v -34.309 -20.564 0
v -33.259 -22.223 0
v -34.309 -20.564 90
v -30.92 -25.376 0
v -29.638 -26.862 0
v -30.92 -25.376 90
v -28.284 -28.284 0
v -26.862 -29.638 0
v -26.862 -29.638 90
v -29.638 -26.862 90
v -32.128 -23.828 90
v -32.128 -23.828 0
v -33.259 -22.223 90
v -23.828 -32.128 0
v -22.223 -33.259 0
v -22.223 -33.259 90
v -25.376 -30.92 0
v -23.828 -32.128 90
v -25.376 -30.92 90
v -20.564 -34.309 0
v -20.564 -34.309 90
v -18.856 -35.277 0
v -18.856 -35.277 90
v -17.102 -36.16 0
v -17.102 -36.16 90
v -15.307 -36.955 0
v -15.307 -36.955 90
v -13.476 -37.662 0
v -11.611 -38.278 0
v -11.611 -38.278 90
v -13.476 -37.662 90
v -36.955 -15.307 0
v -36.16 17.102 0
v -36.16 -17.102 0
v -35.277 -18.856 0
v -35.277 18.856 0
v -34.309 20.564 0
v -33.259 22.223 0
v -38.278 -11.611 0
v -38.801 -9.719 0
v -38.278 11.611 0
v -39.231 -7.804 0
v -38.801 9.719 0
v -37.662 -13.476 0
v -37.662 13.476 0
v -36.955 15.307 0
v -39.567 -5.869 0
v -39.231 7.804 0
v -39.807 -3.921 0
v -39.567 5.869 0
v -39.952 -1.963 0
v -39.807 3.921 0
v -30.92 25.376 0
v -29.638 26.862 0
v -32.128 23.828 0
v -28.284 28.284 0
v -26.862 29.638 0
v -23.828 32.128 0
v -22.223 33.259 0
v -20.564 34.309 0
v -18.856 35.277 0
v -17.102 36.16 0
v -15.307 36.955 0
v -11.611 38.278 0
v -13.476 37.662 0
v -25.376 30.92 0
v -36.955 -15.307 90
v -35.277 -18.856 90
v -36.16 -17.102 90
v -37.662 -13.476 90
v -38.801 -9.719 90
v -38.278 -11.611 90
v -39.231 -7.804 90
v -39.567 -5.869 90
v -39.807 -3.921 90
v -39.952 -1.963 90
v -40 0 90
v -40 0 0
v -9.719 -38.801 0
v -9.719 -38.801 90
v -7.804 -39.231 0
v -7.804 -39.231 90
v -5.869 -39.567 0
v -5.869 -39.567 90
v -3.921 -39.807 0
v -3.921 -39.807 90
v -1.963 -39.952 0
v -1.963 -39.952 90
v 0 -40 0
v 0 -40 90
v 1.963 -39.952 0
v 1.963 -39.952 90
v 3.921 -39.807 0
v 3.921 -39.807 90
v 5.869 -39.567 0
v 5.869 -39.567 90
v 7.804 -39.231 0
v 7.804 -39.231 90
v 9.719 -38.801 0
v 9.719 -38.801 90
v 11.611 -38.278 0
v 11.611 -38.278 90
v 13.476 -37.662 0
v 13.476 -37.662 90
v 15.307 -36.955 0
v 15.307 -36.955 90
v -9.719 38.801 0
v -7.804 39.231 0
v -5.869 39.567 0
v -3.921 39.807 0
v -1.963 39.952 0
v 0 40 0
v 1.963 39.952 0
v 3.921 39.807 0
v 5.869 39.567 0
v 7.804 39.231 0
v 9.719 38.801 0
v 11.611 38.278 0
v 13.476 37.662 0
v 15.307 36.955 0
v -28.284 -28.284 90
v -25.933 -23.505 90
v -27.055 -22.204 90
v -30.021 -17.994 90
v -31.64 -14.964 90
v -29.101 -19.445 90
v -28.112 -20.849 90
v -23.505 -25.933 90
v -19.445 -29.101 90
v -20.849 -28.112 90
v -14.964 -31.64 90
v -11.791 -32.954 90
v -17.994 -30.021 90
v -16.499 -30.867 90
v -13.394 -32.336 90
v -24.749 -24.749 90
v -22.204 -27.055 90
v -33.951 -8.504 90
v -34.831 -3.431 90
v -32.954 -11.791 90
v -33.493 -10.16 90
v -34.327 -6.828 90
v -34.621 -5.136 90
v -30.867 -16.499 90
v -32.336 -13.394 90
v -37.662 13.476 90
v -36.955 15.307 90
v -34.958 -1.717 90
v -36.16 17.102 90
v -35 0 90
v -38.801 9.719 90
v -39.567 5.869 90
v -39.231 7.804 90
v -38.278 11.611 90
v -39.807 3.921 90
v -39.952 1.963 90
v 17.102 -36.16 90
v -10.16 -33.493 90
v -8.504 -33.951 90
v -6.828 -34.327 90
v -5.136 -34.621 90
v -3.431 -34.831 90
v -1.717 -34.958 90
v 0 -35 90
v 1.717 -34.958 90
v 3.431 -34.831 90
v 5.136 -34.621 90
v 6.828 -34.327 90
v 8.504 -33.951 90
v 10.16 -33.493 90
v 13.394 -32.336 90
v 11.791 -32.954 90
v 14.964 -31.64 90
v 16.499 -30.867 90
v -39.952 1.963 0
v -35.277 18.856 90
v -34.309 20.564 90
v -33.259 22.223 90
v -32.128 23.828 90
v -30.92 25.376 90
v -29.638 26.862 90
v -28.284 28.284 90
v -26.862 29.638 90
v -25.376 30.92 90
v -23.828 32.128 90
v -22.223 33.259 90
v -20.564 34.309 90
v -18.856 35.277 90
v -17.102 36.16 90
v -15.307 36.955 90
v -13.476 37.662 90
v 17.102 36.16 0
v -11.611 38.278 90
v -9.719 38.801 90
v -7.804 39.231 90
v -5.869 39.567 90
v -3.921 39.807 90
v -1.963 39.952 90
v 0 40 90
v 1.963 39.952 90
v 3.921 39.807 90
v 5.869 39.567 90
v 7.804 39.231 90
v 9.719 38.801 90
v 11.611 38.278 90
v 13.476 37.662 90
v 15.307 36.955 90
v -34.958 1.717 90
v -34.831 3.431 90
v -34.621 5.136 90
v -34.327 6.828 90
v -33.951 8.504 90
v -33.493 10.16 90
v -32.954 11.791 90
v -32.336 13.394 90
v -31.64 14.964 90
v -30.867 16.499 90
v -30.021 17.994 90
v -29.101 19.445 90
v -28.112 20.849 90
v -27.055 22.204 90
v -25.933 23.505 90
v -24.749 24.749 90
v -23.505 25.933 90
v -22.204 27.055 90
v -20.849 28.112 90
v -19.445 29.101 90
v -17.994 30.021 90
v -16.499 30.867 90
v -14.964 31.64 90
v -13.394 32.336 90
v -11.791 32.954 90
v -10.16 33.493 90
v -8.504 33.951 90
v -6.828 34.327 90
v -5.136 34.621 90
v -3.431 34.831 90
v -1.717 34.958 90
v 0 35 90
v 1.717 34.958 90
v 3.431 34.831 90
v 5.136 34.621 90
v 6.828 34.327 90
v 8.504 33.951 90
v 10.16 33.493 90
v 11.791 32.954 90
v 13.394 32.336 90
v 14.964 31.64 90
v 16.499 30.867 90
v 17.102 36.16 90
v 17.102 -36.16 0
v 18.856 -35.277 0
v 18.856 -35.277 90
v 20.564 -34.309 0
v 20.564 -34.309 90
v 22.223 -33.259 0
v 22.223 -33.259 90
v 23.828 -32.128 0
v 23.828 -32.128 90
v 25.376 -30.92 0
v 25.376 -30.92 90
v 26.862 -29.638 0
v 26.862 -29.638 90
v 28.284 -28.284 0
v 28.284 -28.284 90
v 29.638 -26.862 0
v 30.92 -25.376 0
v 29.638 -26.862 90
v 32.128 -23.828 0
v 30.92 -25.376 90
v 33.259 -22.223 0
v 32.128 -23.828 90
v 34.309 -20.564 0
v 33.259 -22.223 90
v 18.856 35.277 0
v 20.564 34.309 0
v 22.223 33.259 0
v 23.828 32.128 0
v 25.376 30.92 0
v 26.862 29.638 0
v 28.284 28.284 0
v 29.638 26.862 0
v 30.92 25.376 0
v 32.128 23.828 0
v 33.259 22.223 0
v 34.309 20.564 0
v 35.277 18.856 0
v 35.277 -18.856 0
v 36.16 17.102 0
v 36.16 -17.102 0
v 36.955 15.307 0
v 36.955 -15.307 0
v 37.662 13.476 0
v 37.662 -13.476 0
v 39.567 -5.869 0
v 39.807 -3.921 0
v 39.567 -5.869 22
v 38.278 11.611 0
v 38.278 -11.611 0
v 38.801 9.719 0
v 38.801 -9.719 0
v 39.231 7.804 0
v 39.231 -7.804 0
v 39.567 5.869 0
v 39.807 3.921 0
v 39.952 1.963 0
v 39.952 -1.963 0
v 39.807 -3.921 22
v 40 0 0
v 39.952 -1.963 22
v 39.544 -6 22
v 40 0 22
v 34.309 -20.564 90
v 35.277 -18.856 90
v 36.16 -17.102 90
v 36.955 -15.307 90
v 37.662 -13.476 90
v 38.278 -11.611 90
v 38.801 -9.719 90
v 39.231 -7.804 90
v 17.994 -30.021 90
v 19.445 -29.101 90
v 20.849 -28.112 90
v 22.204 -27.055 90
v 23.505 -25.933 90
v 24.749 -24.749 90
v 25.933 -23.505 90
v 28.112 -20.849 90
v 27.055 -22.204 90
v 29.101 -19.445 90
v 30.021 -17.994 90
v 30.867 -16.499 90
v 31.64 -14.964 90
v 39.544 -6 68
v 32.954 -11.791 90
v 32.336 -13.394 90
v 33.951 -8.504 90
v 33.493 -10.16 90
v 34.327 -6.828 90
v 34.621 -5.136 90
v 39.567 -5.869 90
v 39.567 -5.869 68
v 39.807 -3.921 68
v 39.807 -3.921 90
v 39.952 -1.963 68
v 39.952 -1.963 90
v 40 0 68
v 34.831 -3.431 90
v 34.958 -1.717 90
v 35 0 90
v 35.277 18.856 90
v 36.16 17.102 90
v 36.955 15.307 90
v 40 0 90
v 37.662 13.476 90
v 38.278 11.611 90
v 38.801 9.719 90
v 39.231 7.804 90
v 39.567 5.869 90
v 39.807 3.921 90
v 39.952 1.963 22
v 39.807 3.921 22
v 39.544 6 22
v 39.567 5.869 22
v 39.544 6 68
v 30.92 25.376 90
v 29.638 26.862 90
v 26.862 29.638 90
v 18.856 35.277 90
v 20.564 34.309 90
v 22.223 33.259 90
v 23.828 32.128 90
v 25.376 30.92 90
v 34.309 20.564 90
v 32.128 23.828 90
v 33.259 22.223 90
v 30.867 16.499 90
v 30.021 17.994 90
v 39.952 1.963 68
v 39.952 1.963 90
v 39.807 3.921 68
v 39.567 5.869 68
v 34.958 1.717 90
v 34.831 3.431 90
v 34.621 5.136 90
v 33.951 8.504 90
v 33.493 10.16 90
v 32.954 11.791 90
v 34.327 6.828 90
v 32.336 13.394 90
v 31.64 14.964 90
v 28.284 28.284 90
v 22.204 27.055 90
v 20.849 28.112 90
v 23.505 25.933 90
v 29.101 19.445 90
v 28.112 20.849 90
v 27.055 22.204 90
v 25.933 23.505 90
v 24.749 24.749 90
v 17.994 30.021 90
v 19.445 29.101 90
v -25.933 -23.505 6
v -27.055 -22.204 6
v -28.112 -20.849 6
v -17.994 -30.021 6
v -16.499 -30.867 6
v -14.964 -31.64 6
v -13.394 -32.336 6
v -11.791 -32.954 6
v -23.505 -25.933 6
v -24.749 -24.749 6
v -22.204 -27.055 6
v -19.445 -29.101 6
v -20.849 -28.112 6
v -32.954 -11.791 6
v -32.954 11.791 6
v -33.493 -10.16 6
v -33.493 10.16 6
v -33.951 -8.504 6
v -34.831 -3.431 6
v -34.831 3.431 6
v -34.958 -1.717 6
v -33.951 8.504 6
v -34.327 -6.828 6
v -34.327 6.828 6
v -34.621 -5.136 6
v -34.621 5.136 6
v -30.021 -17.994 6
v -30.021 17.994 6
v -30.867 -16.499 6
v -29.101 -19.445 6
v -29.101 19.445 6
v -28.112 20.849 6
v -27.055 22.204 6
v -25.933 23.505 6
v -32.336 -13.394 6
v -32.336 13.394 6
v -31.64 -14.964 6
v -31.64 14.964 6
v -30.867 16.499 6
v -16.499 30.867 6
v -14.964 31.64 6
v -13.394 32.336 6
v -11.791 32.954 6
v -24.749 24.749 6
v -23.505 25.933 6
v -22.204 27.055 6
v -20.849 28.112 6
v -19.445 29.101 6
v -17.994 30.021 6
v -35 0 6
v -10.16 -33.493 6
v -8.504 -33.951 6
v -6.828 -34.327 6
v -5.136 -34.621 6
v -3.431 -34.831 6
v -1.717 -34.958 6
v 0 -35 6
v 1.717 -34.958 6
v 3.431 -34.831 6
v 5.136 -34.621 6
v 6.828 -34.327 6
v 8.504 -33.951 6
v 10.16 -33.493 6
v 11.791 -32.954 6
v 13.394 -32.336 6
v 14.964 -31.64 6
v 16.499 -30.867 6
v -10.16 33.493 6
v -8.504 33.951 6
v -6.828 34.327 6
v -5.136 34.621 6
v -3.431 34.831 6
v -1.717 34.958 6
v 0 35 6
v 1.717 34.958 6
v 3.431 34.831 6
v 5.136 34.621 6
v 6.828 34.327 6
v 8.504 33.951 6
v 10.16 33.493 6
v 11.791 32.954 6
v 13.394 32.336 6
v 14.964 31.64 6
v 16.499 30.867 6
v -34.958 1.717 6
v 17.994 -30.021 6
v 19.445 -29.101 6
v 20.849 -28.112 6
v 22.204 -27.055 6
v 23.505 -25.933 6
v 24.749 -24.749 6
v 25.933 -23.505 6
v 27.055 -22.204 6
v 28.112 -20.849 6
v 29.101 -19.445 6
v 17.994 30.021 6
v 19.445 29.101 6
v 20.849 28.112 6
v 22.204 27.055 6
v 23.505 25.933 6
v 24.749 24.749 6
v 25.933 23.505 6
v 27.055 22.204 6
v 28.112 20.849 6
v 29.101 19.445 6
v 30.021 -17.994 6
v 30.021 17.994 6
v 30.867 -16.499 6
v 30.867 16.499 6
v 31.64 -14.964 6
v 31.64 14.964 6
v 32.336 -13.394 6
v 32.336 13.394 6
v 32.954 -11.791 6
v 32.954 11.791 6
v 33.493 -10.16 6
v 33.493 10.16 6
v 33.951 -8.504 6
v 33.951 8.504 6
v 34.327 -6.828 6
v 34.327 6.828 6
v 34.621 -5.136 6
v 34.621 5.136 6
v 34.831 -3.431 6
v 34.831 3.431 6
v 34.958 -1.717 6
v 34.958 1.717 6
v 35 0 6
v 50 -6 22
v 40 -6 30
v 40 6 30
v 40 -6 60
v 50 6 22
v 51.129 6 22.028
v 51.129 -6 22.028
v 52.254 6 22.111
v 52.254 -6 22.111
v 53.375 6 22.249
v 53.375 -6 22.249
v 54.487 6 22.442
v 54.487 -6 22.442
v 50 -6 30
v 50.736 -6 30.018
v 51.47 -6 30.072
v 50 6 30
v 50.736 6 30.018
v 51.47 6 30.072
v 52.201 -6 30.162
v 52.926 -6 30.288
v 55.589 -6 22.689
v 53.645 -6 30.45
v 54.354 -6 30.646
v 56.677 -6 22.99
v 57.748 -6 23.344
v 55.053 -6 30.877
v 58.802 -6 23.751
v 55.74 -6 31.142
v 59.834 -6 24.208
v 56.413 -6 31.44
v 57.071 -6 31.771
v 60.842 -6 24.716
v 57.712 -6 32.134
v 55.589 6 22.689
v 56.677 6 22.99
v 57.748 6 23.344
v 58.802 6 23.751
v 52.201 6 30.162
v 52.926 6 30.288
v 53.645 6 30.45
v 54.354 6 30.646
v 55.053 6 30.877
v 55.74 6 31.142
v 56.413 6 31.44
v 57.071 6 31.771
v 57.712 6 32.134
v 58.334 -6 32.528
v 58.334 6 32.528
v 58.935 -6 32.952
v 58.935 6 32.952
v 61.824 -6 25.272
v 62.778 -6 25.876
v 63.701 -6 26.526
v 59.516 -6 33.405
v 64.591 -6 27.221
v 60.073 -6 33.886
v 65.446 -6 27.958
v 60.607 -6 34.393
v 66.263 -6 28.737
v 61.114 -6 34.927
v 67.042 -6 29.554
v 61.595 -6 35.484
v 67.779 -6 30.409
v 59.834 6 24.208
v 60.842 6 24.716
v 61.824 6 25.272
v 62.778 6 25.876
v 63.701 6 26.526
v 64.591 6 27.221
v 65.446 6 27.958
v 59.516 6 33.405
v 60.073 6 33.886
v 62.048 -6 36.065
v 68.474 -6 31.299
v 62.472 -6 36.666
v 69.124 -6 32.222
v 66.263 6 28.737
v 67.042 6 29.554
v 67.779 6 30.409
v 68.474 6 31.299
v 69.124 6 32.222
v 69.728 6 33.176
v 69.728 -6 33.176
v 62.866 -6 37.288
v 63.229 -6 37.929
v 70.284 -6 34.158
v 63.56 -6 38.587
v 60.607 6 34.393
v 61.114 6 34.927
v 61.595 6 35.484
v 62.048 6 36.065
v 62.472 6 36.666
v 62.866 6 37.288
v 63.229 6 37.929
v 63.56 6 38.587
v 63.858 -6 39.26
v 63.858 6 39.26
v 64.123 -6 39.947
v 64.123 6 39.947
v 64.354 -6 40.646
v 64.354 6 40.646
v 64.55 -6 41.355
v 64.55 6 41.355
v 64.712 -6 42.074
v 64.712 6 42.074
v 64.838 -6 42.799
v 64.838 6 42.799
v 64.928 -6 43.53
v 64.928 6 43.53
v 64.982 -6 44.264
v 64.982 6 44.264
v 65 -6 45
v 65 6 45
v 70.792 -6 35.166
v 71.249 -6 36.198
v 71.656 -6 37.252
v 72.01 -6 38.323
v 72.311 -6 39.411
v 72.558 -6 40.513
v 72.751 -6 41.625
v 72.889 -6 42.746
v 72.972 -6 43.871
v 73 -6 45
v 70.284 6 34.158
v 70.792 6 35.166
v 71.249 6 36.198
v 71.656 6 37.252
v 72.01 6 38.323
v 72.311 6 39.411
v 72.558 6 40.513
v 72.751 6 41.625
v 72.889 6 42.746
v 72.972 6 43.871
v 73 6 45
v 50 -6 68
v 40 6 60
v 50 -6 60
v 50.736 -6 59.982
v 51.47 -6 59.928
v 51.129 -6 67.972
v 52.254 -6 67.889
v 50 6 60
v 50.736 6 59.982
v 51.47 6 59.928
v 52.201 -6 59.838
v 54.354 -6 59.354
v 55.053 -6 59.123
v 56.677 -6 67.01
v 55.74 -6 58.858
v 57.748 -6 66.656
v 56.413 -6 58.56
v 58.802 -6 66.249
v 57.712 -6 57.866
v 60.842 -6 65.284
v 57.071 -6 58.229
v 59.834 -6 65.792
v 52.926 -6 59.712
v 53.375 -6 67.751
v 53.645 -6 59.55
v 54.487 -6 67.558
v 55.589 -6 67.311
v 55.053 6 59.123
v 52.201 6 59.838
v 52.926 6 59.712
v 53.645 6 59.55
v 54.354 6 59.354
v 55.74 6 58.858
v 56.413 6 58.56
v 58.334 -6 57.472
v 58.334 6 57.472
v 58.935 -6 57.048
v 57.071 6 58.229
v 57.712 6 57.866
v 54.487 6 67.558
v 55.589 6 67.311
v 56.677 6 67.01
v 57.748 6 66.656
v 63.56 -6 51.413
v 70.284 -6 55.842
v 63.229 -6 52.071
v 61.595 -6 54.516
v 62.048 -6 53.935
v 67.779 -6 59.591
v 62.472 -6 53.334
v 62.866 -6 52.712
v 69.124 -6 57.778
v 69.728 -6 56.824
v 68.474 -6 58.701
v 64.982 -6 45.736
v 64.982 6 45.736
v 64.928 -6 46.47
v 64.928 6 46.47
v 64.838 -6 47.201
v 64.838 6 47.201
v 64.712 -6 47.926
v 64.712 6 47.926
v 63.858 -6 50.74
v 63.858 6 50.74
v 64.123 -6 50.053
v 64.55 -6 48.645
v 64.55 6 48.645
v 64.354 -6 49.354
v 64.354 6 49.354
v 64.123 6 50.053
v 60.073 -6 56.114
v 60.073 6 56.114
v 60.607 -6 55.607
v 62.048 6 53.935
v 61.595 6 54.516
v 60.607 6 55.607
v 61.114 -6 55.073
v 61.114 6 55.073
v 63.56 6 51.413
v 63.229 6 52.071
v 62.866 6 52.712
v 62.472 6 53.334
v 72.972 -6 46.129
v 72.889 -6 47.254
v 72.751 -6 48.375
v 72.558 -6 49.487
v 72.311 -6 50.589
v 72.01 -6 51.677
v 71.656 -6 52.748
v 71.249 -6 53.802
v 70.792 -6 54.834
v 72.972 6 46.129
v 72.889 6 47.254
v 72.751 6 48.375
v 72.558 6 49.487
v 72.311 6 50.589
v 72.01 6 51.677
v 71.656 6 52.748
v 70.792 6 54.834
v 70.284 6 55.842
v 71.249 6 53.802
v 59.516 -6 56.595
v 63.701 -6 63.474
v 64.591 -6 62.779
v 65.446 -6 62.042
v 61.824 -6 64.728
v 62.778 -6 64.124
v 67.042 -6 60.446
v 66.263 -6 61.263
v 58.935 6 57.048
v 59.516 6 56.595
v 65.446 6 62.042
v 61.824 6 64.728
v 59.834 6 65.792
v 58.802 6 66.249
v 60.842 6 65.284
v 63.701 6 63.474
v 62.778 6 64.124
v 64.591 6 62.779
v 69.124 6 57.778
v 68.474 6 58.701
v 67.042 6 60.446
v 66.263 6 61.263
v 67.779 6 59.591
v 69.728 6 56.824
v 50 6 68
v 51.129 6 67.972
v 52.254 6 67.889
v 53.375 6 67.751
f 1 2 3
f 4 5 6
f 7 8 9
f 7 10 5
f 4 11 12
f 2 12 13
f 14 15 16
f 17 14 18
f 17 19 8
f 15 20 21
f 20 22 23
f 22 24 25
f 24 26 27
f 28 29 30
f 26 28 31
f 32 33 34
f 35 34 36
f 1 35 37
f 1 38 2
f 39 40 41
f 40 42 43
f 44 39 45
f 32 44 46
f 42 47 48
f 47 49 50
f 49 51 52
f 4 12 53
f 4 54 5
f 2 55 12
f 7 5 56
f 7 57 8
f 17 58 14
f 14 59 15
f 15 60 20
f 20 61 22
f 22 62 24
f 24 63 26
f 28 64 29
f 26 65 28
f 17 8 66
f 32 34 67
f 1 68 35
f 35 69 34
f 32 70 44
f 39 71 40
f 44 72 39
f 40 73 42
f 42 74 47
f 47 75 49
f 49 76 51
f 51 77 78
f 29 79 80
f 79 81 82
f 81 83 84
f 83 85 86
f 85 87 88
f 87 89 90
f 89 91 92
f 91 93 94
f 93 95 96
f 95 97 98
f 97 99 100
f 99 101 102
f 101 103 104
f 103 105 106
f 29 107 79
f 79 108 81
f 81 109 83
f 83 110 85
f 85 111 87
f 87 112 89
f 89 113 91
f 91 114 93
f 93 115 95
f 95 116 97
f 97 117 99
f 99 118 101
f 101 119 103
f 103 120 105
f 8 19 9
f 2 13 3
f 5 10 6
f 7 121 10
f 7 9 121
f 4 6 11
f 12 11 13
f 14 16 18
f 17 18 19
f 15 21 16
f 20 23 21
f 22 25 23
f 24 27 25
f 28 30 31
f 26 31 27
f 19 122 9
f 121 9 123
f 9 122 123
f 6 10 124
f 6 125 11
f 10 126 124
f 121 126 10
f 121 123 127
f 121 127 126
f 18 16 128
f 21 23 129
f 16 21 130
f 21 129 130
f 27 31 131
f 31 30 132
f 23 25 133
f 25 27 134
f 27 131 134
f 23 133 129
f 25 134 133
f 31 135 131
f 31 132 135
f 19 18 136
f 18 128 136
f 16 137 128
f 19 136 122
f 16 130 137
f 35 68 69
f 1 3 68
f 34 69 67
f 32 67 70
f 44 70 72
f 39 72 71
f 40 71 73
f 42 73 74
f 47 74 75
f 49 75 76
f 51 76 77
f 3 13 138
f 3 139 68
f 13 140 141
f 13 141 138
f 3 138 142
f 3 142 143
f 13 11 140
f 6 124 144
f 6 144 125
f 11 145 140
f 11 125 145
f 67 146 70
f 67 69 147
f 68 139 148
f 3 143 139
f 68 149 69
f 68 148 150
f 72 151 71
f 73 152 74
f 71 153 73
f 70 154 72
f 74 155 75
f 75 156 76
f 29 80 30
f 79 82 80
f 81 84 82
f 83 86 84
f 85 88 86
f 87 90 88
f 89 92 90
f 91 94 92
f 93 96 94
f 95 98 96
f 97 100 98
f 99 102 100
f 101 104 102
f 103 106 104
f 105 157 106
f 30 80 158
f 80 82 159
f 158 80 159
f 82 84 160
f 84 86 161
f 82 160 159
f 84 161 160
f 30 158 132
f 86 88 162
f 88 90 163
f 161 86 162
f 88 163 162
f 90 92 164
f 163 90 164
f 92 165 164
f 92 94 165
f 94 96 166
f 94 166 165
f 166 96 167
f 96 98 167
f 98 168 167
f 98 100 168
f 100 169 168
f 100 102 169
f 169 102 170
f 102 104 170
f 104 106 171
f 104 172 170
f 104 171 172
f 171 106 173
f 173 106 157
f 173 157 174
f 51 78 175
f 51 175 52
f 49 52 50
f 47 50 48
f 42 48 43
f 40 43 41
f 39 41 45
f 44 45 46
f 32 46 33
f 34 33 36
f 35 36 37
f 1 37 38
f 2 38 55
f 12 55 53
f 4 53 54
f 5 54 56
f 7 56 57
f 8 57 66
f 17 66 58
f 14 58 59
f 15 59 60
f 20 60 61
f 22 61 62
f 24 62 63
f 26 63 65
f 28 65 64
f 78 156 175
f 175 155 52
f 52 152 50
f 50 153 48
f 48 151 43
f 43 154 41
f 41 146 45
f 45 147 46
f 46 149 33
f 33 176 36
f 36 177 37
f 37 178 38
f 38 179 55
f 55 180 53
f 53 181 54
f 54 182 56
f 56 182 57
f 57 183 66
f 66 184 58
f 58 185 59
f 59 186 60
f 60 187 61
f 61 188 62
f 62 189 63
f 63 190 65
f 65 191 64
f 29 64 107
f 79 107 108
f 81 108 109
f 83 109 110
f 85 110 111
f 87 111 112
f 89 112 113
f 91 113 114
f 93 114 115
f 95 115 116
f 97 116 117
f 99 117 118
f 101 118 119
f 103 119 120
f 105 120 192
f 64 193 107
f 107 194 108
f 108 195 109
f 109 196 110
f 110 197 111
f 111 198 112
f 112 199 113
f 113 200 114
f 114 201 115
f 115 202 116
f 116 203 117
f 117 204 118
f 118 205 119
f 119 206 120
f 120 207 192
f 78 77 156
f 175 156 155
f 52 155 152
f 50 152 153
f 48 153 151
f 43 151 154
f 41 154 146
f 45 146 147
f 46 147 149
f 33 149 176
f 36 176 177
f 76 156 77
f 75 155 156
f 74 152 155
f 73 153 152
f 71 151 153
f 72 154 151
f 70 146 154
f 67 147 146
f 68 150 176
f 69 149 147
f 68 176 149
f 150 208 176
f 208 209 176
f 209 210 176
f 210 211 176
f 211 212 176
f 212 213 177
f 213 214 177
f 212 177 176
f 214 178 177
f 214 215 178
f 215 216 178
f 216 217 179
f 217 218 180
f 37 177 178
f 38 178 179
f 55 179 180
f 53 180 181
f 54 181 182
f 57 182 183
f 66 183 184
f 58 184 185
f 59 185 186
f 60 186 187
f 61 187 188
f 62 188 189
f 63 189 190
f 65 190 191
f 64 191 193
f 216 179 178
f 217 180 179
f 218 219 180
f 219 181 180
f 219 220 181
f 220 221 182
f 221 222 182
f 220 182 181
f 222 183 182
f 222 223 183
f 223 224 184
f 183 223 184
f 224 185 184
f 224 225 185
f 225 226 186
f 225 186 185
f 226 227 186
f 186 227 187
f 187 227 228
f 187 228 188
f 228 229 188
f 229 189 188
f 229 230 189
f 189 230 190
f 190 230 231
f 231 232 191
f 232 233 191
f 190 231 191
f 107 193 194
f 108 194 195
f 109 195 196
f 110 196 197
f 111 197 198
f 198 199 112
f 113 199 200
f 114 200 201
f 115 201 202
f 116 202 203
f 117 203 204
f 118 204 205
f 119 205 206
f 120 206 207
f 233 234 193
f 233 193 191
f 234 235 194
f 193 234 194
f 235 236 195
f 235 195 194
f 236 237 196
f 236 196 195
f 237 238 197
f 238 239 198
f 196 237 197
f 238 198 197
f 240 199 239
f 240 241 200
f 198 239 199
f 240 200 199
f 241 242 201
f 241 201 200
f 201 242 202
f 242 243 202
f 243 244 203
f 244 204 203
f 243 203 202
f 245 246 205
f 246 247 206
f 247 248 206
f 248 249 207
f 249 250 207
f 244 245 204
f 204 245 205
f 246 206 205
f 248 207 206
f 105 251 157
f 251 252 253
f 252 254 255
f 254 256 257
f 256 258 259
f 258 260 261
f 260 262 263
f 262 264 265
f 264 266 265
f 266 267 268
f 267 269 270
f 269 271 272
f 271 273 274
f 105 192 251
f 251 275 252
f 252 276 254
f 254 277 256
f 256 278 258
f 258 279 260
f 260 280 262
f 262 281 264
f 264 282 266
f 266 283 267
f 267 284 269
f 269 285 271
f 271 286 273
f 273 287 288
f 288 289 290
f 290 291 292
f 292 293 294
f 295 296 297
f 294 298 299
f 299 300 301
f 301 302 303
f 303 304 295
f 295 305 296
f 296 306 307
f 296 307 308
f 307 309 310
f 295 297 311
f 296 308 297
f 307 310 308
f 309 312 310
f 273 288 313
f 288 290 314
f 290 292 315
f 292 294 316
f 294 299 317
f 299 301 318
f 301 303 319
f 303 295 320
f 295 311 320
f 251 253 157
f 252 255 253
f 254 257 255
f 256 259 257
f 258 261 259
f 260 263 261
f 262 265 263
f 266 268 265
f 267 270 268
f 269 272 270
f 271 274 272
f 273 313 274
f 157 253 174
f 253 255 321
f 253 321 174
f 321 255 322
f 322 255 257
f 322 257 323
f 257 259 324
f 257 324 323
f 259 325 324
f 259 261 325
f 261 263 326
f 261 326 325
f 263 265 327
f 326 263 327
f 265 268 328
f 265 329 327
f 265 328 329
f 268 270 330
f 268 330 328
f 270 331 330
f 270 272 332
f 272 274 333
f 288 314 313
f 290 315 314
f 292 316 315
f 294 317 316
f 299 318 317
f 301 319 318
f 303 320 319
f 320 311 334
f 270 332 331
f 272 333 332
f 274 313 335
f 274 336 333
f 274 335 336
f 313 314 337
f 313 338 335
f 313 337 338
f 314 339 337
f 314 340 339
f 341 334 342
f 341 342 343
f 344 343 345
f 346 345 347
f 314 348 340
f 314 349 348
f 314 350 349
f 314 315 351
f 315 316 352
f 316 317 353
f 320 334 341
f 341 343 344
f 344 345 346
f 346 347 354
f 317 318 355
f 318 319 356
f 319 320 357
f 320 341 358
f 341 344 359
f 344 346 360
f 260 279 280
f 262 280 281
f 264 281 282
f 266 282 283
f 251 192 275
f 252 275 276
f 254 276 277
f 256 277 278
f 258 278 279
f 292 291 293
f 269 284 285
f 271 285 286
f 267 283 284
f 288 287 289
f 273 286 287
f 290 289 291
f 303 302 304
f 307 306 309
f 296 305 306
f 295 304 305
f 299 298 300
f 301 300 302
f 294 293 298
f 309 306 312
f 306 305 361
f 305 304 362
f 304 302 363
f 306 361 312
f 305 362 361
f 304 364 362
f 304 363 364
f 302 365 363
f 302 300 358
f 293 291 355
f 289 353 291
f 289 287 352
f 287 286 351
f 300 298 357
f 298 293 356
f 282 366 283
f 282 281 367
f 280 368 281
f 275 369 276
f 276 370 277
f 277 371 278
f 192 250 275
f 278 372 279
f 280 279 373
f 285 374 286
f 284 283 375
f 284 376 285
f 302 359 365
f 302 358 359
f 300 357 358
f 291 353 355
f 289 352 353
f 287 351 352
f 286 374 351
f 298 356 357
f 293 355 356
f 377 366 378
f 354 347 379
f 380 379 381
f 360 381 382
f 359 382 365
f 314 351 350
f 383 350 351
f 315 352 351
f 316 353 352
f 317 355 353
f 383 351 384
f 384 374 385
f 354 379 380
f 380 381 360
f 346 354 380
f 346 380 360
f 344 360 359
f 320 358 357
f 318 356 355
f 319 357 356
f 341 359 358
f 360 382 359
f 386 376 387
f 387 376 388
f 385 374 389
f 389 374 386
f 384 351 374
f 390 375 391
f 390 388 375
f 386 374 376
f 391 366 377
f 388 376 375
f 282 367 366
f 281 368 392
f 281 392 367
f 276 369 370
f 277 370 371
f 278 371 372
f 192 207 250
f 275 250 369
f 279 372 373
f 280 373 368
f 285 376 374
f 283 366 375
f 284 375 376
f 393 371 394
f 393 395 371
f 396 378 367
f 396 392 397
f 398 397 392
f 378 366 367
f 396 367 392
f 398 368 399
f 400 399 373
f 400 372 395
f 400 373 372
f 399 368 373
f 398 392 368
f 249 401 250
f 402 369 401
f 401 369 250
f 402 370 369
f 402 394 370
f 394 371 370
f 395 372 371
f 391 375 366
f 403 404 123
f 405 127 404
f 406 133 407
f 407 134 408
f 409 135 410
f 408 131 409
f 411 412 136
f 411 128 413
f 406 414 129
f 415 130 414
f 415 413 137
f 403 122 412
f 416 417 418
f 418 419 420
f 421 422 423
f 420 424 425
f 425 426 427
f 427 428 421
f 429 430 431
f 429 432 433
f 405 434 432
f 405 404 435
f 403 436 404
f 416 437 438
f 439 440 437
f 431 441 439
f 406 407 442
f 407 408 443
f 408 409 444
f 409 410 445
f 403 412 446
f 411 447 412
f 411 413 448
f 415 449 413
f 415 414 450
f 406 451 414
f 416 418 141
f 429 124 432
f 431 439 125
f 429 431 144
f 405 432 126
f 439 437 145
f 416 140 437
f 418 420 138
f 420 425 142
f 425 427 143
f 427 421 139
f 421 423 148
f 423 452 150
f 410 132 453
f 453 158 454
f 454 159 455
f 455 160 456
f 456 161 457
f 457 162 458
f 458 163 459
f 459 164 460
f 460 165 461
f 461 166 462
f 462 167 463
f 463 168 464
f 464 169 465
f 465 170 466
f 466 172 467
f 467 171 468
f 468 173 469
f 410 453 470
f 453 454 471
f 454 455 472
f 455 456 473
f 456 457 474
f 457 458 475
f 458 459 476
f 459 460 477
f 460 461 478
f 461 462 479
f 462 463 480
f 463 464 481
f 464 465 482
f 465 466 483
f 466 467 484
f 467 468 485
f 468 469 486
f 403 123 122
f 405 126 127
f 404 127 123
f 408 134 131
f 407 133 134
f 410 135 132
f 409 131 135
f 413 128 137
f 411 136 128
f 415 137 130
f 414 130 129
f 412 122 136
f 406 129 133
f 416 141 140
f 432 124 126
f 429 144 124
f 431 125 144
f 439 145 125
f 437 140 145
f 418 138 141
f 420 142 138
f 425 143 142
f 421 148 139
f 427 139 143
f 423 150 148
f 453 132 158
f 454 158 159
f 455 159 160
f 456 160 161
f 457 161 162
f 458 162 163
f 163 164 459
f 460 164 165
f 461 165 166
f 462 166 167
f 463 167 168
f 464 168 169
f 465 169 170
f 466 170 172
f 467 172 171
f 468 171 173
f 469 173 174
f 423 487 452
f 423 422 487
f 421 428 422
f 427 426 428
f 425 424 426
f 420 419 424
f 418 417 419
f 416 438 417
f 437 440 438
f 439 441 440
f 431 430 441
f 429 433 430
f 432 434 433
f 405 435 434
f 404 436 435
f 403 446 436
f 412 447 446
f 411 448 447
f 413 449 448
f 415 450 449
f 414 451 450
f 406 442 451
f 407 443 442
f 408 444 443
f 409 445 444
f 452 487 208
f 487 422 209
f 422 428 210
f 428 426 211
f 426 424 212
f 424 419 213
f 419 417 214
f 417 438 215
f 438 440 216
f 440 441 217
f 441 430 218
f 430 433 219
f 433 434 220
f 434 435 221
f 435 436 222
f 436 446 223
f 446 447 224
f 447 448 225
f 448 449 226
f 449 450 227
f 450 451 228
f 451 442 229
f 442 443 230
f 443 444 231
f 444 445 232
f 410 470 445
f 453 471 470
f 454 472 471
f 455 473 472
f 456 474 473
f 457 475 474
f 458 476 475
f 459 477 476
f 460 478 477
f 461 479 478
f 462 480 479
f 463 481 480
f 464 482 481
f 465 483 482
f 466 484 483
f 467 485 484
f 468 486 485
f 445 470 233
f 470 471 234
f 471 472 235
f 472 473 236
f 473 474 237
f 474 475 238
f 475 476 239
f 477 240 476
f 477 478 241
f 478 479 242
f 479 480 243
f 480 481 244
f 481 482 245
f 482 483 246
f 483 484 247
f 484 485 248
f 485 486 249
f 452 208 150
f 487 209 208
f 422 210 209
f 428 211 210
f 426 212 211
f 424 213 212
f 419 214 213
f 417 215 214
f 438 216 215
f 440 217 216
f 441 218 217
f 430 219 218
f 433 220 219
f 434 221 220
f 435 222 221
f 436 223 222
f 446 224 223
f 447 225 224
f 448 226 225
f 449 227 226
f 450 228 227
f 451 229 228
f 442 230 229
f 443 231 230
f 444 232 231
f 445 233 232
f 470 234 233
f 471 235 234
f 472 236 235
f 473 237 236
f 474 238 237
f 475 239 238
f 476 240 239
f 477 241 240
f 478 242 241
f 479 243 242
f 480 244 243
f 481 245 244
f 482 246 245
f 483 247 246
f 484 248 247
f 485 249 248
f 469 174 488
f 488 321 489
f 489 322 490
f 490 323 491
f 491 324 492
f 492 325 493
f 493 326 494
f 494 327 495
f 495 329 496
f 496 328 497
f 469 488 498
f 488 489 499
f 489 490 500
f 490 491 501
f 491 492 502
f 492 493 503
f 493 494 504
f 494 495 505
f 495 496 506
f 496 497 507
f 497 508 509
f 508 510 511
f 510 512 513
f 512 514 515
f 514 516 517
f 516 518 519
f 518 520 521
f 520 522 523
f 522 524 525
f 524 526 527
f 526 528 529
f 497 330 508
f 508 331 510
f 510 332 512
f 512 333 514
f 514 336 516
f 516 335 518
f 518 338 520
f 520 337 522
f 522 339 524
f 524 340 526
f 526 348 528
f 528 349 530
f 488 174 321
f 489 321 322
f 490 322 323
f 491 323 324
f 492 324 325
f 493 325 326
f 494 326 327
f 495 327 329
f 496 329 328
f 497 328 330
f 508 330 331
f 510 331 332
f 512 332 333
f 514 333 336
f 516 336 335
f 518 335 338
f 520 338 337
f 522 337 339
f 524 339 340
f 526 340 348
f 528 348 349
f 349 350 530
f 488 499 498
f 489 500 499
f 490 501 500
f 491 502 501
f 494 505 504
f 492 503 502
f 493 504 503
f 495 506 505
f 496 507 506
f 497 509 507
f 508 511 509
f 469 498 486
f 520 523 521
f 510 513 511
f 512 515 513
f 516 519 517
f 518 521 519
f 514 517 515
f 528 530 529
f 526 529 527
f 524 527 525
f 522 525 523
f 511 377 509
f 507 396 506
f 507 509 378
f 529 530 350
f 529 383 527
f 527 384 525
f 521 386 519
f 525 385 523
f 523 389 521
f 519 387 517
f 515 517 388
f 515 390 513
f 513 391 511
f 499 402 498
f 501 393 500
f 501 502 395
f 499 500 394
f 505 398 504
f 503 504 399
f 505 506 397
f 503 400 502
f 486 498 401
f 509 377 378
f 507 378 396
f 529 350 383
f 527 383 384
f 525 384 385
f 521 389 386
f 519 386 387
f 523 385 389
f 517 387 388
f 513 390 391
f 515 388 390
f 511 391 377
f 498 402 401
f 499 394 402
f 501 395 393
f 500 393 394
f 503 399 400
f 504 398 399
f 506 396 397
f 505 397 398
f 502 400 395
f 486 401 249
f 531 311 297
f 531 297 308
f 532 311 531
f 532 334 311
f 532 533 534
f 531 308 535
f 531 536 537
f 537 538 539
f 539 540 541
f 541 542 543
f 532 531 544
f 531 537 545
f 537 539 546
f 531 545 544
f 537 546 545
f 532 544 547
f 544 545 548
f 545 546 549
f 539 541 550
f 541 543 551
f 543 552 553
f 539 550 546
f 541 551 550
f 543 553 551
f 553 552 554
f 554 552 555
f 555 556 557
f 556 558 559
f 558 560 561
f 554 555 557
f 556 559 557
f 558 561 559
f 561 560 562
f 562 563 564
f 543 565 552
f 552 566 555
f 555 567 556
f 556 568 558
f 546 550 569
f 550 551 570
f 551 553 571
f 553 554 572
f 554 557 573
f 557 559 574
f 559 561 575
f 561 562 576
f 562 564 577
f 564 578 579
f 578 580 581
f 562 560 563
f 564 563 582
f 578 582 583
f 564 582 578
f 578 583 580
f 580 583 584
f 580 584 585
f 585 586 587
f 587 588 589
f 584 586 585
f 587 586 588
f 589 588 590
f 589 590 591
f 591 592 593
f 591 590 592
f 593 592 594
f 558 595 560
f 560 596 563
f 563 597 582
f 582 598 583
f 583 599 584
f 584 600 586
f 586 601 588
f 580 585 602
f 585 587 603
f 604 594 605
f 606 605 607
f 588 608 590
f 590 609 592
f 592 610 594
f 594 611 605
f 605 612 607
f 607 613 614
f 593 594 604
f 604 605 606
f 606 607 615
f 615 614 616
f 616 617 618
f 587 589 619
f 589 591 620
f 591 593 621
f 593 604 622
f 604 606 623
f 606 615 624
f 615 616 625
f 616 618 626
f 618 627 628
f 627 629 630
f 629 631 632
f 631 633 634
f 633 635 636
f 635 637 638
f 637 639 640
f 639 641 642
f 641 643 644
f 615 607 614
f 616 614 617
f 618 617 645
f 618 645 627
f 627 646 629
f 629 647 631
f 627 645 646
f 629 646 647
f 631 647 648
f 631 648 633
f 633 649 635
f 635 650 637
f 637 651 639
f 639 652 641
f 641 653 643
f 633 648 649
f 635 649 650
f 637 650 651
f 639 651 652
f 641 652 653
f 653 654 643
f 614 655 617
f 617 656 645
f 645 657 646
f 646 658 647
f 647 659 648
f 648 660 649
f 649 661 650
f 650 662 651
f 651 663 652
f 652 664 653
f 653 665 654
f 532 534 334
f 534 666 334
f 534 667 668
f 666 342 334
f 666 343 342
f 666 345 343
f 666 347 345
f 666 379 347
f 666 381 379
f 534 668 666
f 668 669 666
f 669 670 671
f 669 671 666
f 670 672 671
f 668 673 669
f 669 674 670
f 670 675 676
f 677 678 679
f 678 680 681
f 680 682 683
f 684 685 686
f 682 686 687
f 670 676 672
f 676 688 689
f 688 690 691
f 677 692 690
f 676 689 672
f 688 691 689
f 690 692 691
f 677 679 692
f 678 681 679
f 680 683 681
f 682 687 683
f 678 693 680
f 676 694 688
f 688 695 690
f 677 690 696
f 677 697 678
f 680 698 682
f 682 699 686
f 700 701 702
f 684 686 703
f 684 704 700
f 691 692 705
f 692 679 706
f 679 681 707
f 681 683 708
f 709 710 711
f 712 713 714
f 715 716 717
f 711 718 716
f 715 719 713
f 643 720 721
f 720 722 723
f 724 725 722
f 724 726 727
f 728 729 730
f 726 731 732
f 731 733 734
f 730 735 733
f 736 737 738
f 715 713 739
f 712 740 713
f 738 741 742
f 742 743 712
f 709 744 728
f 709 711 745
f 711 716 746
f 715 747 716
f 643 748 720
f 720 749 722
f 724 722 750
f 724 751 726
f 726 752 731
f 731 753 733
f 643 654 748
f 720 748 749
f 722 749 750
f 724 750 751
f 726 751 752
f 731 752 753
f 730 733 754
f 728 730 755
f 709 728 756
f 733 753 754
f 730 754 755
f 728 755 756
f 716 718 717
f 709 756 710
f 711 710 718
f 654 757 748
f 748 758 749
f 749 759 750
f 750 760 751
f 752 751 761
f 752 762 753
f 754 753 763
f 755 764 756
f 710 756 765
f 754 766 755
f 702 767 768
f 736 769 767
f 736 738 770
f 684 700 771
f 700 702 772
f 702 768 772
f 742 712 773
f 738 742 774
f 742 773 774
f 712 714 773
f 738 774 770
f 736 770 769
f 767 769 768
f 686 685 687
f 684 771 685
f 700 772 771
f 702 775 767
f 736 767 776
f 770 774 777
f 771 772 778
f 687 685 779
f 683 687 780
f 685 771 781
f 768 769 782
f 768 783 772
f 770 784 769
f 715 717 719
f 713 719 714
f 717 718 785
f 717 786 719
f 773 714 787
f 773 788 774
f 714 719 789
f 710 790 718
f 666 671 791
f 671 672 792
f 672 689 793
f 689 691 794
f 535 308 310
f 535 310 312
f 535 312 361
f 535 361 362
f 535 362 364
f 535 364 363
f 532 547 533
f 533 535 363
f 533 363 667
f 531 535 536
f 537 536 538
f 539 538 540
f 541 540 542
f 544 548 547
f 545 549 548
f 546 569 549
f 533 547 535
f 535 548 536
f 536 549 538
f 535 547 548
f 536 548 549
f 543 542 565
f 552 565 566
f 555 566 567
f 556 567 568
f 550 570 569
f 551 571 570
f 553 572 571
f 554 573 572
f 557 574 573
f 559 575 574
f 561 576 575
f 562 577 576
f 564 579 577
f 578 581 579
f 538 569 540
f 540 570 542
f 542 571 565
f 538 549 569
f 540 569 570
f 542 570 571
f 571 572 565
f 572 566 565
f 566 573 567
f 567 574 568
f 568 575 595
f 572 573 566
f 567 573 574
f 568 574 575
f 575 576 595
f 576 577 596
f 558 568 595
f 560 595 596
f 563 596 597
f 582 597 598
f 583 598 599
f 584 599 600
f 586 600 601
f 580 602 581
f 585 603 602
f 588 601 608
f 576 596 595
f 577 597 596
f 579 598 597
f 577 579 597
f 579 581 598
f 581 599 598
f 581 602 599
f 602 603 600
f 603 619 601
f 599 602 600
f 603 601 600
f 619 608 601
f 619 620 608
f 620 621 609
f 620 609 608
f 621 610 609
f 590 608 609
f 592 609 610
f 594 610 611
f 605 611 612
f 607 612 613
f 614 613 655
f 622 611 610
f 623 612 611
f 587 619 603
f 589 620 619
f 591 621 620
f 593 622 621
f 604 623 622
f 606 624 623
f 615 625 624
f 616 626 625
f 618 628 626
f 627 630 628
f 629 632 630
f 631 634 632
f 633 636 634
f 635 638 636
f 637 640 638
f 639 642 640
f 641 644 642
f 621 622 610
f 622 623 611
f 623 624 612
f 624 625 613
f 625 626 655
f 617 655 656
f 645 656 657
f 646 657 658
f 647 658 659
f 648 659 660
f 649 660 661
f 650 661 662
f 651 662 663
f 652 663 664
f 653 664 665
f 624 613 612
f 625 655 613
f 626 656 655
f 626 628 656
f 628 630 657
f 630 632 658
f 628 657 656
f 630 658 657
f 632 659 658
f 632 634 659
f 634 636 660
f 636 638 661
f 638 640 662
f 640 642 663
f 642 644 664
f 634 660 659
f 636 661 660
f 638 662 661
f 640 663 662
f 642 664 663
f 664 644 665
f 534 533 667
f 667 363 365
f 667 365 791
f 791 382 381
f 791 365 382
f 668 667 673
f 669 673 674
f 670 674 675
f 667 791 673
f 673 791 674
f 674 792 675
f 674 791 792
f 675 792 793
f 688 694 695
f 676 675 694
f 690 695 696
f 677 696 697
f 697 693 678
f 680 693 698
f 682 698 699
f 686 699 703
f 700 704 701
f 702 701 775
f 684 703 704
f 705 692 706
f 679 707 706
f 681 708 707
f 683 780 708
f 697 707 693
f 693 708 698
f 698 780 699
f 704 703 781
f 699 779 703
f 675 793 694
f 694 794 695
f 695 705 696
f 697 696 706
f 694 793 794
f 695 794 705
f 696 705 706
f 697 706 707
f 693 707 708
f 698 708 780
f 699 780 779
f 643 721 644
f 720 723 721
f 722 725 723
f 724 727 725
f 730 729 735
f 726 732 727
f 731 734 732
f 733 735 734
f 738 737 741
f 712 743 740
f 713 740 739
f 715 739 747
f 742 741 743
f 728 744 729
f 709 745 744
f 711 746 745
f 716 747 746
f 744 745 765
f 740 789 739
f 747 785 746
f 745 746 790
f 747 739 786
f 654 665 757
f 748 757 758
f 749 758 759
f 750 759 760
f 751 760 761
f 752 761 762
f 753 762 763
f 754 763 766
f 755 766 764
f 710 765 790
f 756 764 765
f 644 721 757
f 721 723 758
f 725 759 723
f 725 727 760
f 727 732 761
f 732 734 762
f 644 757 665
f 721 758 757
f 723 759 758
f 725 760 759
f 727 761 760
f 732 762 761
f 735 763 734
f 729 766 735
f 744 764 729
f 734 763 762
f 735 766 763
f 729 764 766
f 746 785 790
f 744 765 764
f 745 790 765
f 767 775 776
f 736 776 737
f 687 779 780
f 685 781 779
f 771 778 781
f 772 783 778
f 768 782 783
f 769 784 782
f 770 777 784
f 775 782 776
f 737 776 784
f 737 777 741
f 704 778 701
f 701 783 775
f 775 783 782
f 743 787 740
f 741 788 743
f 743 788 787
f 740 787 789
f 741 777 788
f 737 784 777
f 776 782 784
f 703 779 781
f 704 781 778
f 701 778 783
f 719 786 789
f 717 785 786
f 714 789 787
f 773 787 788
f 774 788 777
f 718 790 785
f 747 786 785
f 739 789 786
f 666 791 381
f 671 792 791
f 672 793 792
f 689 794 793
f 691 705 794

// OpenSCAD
// マグカップ(取手は +X 軸方向の側面のみ)
$fn = 128;

// ---- 本体パラメータ ----
outer_d  = 80;            // 外径
inner_d  = 70;            // 内径(肉厚 5mm)
mug_h    = 90;            // 高さ
bottom_t = 6;             // 底面の厚み
outer_r  = outer_d / 2;
inner_r  = inner_d / 2;

// ---- 取手パラメータ ----
grip_w       = 25;        // 取手内側の空間の幅 (X 方向)
grip_h       = 30;        // 取手内側の空間の高さ (Z 方向)
handle_bar   = 8;         // 取手の棒の太さ(D 断面方向)
handle_depth = 12;        // 取手の奥行き(Y 方向の厚み)
embed        = 4;         // 本体壁へ食い込ませる量(確実に union させる)
handle_zc    = mug_h / 2; // 取手の中心高さ(高さ方向の中央)

// D 字形の 2D 形状
//   x0: 直線側(本体側)の X 位置, w: 全幅, h: 全高, zc: 中心高さ
module d_shape(x0, w, h, zc) {
    r  = h / 2;
    cx = x0 + w - r;          // 外側半円の中心 X
    intersection() {
        union() {
            translate([x0, zc - r]) square([w - r, h]);   // 直線部
            translate([cx, zc]) circle(r = r);            // 半円部
        }
        // 直線側 (x < x0) にはみ出さないようにクリップ
        translate([x0, zc - r - 1]) square([w + 2, h + 2]);
    }
}

// マグ本体(中空)
module body() {
    difference() {
        cylinder(h = mug_h, r = outer_r);
        translate([0, 0, bottom_t])
            cylinder(h = mug_h, r = inner_r);   // 底 6mm を残して上まで貫通
    }
}

// 取手(+X 側のみ)
module handle() {
    // XY 平面で D 形状を作り、Y 方向に押し出して XZ 平面に立てる
    rotate([90, 0, 0])
        linear_extrude(height = handle_depth, center = true)
            difference() {
                // 外形: 本体壁に embed 分だけ食い込ませて確実に接続
                d_shape(outer_r - embed,
                        grip_w + handle_bar + embed,
                        grip_h + 2 * handle_bar,
                        handle_zc);
                // 内側の空間(指 3 本分): 高さ 30 x 幅 25
                d_shape(outer_r, grip_w, grip_h, handle_zc);
            }
}

union() {
    body();
    handle();
}
